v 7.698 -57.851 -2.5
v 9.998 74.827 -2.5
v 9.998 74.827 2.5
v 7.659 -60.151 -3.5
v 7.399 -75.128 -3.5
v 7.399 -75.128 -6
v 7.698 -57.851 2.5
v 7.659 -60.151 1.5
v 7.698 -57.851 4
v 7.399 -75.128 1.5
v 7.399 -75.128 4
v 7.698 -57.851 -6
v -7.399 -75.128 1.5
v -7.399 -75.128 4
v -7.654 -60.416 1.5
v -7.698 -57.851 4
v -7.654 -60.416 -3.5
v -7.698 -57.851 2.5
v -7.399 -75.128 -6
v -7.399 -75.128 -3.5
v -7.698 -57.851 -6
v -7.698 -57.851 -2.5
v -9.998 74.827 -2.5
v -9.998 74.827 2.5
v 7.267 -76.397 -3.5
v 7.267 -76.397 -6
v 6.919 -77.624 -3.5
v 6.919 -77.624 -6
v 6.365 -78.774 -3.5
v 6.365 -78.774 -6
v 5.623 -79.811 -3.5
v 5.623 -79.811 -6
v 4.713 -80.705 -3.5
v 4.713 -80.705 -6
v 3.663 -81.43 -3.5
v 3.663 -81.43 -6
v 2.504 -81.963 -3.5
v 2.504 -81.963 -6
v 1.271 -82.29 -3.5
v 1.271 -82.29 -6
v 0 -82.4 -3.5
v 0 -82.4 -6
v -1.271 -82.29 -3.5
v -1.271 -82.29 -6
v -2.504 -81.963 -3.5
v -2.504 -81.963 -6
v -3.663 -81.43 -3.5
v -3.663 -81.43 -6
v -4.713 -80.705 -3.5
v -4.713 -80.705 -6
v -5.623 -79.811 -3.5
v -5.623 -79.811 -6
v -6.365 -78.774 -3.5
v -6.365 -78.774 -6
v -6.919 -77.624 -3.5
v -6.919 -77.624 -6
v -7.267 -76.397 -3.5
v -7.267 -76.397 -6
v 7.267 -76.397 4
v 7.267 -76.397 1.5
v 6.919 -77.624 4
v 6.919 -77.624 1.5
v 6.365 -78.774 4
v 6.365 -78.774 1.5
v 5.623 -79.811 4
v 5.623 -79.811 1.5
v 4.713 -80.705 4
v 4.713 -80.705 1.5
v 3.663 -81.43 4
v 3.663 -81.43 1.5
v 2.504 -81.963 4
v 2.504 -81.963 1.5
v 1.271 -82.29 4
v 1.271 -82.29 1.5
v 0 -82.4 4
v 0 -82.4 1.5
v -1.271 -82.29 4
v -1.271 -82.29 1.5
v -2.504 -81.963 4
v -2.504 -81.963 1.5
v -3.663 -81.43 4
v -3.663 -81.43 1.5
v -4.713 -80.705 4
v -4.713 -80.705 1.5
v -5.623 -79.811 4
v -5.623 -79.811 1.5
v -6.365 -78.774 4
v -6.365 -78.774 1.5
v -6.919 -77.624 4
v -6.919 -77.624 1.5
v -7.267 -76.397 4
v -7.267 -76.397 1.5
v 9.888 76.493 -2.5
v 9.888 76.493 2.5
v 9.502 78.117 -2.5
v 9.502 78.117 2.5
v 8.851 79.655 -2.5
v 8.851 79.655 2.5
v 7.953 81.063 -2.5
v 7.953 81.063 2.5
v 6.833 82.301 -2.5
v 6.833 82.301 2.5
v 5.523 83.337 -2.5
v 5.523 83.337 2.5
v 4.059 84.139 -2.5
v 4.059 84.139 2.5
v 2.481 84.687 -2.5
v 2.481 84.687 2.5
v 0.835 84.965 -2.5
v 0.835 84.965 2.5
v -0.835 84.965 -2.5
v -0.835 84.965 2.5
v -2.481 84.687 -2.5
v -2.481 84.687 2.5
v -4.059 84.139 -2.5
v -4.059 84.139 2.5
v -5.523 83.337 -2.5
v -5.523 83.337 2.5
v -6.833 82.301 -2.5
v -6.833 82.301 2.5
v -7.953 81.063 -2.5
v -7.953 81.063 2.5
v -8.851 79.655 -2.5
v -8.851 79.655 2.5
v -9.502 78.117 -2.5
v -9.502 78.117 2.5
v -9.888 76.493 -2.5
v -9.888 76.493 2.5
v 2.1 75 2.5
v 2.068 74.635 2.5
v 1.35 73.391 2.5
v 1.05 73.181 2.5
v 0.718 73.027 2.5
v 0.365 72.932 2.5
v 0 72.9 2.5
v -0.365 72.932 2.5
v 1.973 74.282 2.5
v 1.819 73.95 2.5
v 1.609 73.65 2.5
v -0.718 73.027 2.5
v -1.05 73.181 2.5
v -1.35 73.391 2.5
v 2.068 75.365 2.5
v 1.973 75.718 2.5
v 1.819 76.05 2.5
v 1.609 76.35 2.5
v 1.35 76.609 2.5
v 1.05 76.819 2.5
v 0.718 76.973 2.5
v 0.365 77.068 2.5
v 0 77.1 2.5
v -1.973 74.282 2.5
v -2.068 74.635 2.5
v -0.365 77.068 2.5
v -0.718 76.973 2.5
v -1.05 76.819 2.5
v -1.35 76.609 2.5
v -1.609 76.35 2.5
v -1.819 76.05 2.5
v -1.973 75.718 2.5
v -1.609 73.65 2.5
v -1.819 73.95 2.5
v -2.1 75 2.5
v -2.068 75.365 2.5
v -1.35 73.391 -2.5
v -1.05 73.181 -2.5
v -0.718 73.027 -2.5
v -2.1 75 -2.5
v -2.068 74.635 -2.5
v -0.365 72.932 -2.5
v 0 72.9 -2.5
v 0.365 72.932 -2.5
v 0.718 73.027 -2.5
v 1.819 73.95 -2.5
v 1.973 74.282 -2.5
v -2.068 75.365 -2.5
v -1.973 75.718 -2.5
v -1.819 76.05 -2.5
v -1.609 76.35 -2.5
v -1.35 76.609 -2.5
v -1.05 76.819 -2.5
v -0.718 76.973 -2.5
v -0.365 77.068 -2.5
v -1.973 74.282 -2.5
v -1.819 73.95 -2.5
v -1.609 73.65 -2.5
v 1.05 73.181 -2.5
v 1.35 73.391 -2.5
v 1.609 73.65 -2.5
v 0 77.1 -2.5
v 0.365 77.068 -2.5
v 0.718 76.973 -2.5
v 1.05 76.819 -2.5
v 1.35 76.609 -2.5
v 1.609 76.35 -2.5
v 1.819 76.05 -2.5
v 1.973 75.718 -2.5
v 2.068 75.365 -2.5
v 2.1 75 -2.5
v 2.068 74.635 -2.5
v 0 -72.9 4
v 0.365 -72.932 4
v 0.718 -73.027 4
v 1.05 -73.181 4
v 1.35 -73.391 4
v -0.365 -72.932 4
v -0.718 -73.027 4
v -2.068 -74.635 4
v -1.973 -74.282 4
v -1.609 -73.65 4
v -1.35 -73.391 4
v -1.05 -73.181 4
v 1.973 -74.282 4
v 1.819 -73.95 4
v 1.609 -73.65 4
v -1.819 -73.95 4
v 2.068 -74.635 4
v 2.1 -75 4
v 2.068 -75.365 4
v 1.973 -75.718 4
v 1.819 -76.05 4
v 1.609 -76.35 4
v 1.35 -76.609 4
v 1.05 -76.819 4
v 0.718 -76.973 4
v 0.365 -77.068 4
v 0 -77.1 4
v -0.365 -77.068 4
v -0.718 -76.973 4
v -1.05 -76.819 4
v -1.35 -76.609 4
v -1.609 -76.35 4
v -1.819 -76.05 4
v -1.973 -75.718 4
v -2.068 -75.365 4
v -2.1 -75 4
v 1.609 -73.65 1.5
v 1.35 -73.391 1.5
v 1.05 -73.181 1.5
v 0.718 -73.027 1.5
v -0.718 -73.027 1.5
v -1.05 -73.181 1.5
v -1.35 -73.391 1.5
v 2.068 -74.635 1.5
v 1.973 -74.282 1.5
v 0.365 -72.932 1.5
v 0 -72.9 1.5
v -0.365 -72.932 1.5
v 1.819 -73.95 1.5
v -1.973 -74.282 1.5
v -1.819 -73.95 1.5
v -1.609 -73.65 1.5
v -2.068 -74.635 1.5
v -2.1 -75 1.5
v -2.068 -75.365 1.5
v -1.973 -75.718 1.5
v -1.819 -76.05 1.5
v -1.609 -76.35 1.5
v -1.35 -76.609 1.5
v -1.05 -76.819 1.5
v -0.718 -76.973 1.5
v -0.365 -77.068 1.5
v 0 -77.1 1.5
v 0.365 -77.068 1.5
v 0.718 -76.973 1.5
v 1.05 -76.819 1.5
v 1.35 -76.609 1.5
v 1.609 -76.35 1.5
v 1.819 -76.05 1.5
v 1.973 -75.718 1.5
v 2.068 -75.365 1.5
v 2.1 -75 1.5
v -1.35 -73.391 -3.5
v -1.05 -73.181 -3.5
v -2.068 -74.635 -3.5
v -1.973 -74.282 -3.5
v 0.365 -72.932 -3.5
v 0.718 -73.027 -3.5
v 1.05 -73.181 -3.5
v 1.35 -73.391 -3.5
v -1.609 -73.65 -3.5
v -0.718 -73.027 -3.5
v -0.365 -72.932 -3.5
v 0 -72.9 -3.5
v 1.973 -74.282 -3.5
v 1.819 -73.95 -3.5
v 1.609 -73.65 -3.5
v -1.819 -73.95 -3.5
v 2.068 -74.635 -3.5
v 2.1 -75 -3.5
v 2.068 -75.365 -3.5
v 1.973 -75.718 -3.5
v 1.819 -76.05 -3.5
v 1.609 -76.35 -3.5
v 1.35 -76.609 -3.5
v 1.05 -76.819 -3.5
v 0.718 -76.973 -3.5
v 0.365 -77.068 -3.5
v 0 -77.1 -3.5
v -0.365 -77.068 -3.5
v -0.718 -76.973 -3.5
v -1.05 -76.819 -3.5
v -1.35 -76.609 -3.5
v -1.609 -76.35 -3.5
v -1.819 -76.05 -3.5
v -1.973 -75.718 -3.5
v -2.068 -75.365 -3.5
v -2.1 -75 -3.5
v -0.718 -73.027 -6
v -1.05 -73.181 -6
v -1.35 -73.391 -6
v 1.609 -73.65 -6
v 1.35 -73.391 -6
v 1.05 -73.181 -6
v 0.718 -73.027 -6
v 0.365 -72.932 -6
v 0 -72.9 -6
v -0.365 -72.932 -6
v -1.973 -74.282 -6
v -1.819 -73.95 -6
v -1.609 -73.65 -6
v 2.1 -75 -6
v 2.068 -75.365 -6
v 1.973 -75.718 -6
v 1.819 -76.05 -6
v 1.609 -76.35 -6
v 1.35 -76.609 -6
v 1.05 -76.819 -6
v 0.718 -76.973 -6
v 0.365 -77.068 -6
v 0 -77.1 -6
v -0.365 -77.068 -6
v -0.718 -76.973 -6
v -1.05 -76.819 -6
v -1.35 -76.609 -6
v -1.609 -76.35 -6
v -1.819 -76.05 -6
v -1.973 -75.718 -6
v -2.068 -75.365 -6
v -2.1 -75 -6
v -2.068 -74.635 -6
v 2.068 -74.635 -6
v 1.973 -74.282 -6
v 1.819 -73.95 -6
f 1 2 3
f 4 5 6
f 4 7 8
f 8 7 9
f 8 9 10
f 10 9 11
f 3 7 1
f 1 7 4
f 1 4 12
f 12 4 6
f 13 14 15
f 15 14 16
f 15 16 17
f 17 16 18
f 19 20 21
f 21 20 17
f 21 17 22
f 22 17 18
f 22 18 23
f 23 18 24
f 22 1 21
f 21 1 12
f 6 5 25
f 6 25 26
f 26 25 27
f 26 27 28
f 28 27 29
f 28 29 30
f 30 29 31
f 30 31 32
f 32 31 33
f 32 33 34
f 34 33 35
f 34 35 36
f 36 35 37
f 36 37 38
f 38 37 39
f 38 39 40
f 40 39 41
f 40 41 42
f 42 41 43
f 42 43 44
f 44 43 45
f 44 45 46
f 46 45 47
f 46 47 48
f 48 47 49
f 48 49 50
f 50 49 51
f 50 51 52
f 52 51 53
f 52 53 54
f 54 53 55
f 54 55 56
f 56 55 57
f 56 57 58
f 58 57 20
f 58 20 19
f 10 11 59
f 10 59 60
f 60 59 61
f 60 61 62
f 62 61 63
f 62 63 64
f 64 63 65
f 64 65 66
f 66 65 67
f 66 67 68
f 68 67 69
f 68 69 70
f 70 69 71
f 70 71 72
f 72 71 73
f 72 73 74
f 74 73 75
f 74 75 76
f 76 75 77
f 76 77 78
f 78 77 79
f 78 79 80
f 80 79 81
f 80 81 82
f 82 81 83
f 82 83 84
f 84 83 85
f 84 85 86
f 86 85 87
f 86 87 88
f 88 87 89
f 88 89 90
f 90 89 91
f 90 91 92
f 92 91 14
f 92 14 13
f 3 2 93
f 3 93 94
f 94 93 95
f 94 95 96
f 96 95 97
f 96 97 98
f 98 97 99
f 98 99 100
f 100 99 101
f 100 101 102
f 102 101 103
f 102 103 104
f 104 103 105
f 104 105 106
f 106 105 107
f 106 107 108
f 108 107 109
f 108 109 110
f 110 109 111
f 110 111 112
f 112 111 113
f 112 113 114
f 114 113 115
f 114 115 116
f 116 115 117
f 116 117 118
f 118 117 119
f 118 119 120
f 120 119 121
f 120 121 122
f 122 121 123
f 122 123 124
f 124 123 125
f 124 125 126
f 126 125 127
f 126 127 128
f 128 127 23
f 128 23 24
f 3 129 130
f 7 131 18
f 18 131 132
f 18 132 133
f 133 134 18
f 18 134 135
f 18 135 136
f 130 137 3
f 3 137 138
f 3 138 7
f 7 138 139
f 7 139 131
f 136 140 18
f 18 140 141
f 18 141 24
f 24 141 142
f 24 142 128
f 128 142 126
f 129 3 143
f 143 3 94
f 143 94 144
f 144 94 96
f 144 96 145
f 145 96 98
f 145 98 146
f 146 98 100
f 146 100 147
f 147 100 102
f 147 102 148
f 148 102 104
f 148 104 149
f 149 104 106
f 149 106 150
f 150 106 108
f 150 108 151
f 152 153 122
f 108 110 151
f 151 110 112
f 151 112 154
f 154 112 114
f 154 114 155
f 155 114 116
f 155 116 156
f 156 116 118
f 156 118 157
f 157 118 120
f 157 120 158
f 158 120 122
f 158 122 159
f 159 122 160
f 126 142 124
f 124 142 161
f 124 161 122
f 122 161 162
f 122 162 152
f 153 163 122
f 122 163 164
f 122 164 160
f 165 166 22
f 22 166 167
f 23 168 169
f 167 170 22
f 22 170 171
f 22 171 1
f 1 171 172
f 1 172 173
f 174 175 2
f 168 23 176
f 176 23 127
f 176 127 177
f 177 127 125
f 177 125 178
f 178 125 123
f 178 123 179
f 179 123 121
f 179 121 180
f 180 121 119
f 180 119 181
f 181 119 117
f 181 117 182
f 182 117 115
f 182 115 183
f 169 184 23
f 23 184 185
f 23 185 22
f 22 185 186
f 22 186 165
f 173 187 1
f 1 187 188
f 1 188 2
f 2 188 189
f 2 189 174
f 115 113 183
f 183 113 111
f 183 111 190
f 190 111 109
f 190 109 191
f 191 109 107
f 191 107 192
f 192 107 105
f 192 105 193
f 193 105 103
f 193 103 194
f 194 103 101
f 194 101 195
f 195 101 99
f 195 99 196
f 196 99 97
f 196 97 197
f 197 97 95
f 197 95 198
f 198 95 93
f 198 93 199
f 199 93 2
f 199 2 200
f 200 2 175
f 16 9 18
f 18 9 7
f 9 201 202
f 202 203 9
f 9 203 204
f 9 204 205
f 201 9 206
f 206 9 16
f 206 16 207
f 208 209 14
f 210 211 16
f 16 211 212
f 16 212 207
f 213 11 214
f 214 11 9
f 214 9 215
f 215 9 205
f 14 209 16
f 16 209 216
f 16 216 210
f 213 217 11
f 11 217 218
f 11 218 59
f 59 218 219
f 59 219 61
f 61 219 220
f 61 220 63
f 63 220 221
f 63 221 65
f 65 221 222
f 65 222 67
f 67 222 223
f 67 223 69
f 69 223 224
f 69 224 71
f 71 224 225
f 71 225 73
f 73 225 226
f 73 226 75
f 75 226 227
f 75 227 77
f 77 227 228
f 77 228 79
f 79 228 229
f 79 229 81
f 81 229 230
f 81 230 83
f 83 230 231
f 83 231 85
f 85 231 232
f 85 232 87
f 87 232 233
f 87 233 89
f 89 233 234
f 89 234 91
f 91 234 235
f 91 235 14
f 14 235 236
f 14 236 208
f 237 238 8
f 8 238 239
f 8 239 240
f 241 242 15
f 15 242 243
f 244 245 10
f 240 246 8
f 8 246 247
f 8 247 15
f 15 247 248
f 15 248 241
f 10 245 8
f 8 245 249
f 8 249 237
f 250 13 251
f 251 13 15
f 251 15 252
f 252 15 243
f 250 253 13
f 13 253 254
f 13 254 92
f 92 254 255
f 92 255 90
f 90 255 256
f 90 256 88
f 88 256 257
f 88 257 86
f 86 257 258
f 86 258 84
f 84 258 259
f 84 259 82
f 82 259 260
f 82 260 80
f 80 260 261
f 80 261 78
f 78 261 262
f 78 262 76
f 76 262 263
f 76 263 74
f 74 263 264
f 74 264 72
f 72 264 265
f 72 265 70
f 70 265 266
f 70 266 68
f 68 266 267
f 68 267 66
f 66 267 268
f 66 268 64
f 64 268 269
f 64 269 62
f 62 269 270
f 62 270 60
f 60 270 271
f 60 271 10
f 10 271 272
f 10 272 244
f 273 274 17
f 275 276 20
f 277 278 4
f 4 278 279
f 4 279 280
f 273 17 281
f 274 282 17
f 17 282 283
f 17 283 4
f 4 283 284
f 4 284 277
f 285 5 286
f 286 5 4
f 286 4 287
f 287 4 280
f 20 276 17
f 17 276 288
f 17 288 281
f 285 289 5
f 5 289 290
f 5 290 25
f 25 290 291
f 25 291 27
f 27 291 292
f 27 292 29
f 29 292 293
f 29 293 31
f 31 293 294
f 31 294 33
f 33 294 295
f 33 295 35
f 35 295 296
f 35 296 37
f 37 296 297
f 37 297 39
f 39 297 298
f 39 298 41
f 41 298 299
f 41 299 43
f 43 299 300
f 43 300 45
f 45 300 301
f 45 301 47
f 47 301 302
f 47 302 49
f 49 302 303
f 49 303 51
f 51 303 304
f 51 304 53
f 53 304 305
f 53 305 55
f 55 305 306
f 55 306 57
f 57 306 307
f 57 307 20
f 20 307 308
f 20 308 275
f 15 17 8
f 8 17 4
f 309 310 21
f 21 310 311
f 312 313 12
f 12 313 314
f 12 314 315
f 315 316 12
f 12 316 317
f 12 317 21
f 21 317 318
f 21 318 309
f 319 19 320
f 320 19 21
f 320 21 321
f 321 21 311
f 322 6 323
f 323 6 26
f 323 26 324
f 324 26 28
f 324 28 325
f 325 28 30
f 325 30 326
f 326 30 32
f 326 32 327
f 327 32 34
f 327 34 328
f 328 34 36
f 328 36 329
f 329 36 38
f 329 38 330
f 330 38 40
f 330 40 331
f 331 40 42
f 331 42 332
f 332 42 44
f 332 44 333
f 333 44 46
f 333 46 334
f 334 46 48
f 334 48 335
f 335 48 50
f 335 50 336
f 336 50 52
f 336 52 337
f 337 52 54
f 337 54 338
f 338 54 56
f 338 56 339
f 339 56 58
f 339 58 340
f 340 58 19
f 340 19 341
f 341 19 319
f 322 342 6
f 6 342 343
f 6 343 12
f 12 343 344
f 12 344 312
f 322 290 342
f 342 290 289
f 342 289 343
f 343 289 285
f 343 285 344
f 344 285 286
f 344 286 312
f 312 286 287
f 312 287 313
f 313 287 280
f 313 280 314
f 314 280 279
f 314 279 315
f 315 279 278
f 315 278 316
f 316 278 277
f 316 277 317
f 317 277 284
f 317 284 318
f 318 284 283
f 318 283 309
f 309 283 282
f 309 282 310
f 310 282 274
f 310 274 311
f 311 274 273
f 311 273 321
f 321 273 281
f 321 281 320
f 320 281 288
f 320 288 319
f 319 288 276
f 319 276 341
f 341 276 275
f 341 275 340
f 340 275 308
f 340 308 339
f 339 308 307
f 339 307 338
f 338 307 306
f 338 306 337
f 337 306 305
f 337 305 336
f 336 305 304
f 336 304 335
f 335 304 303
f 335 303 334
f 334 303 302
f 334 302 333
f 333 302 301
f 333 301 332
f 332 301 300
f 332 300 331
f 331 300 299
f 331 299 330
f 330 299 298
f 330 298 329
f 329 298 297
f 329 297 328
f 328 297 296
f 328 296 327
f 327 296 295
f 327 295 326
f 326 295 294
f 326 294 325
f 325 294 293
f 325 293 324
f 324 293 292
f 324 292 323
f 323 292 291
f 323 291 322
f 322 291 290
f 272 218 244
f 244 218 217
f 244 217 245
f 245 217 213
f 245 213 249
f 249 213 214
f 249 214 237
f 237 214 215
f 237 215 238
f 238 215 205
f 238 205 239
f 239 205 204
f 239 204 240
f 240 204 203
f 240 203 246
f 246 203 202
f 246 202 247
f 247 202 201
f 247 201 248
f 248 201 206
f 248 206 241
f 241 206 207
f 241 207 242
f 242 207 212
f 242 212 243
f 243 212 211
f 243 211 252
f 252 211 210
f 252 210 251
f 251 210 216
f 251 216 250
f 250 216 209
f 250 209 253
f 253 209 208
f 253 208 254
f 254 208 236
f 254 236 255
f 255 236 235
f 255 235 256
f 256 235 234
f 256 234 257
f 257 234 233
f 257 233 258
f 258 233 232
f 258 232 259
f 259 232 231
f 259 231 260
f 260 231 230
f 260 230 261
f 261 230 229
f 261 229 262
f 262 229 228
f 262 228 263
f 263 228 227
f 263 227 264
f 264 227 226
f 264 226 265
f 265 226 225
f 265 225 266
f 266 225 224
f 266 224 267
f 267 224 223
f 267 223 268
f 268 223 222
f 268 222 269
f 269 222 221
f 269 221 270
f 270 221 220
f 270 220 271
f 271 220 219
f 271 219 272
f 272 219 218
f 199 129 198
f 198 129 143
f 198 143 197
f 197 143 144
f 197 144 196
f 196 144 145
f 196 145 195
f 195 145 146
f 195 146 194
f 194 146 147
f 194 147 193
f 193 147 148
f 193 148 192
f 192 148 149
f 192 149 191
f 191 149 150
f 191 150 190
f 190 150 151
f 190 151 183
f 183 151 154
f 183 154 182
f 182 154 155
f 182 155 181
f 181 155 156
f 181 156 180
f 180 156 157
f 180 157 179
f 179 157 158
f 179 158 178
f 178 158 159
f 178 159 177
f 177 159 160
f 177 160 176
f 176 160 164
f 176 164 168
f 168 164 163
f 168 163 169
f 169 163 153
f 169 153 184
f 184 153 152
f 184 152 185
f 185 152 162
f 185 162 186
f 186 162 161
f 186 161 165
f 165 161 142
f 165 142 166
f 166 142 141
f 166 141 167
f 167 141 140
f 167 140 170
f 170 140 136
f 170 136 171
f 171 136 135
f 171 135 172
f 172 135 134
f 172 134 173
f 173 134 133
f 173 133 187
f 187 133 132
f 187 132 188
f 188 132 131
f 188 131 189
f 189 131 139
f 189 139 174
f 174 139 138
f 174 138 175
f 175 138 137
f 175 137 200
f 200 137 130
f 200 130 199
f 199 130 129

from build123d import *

# Parameters (mm, degrees)
BOSS_EXTRUDE1_DEPTH      = 2.5
SKETCH1_R                = 7.4
BOSS_EXTRUDE1_2_DEPTH    = 2.5
BOSS_EXTRUDE4_DEPTH      = 4
BOSS_EXTRUDE4_DEPTH_BACK = 10
SKETCH2_W                = 5
SKETCH2_H                = 25.381176
CUT_EXTRUDE1_DEPTH       = 20
CUT_EXTRUDE2_DEPTH       = 4
SKETCH4_R                = 2.1
CUT_EXTRUDE3_DEPTH       = 87.16844


with BuildPart() as part:
    # Sketch1 → Boss-Extrude1 (new, symmetric)
    with BuildSketch(Plane.XY):
        with BuildLine():
            Line((7.698412, -57.850642), (9.998498, 74.826667))
            ThreePointArc((9.998498, 74.826667), (0, 85), (-9.998498, 74.826667))
            Line((-9.998498, 74.826667), (-7.698412, -57.850642))
            Line((-7.698412, -57.850642), (7.698412, -57.850642))
        make_face()
    extrude(amount=BOSS_EXTRUDE1_DEPTH, both=True)



with BuildPart() as body_2:
    # Sketch1 → Boss-Extrude1 2 (new, symmetric)
    with BuildSketch(Plane.XY):
        with Locations((0, -75)):
            Circle(SKETCH1_R)
    extrude(amount=BOSS_EXTRUDE1_2_DEPTH, both=True)


with BuildPart() as part_1:
    add(part.part)

    add(body_2.part)  # Boss-Extrude4 merges body 2
    # Sketch1<6> → Boss-Extrude4 (add, two sides: drawn at the far end of the back side and taken through both)
    with BuildSketch(Plane.XY.offset(-BOSS_EXTRUDE4_DEPTH_BACK)):
        with BuildLine():
            Line((7.698412, -57.850642), (-7.698412, -57.850642))
            Line((-7.698412, -57.850642), (-7.398888, -75.128267))
            ThreePointArc((-7.398888, -75.128267), (0, -82.4), (7.398888, -75.128267))
            Line((7.398888, -75.128267), (7.698412, -57.850642))
        make_face()
    extrude(amount=BOSS_EXTRUDE4_DEPTH + BOSS_EXTRUDE4_DEPTH_BACK)

    # Sketch2 → Cut-Extrude1 (cut)
    with BuildSketch(Plane(origin=(-8.698693, -0.1508, 0), x_dir=(0, 0, 1), z_dir=(-0.9998497664927245, -0.017333333333333607, 0))):
        with Locations((-1, -72.965255)):
            Rectangle(SKETCH2_W, SKETCH2_H)
    extrude(amount=-CUT_EXTRUDE1_DEPTH, mode=Mode.SUBTRACT)

    # Sketch3 → Cut-Extrude2 (cut)
    with BuildSketch(Plane(origin=(0, 0, -10), x_dir=(-1, 0, 0), z_dir=(0, 0, -1))):
        with BuildLine():
            Line((-7.698412, -57.850642), (-7.398888, -75.128267))
            ThreePointArc((-7.398888, -75.128267), (0, -82.4), (7.398888, -75.128267))
            Line((7.398888, -75.128267), (7.698412, -57.850642))
            Line((7.698412, -57.850642), (-7.698412, -57.850642))
        make_face()
    extrude(amount=-CUT_EXTRUDE2_DEPTH, mode=Mode.SUBTRACT)

    # Sketch4 → Cut-Extrude3 (cut, through all)
    with BuildSketch(Plane.XY.offset(4)):
        with Locations((0, 75)):
            Circle(SKETCH4_R)
        with Locations((0, -75)):
            Circle(SKETCH4_R)
    extrude(amount=-CUT_EXTRUDE3_DEPTH, mode=Mode.SUBTRACT)


solid = part_1.part
